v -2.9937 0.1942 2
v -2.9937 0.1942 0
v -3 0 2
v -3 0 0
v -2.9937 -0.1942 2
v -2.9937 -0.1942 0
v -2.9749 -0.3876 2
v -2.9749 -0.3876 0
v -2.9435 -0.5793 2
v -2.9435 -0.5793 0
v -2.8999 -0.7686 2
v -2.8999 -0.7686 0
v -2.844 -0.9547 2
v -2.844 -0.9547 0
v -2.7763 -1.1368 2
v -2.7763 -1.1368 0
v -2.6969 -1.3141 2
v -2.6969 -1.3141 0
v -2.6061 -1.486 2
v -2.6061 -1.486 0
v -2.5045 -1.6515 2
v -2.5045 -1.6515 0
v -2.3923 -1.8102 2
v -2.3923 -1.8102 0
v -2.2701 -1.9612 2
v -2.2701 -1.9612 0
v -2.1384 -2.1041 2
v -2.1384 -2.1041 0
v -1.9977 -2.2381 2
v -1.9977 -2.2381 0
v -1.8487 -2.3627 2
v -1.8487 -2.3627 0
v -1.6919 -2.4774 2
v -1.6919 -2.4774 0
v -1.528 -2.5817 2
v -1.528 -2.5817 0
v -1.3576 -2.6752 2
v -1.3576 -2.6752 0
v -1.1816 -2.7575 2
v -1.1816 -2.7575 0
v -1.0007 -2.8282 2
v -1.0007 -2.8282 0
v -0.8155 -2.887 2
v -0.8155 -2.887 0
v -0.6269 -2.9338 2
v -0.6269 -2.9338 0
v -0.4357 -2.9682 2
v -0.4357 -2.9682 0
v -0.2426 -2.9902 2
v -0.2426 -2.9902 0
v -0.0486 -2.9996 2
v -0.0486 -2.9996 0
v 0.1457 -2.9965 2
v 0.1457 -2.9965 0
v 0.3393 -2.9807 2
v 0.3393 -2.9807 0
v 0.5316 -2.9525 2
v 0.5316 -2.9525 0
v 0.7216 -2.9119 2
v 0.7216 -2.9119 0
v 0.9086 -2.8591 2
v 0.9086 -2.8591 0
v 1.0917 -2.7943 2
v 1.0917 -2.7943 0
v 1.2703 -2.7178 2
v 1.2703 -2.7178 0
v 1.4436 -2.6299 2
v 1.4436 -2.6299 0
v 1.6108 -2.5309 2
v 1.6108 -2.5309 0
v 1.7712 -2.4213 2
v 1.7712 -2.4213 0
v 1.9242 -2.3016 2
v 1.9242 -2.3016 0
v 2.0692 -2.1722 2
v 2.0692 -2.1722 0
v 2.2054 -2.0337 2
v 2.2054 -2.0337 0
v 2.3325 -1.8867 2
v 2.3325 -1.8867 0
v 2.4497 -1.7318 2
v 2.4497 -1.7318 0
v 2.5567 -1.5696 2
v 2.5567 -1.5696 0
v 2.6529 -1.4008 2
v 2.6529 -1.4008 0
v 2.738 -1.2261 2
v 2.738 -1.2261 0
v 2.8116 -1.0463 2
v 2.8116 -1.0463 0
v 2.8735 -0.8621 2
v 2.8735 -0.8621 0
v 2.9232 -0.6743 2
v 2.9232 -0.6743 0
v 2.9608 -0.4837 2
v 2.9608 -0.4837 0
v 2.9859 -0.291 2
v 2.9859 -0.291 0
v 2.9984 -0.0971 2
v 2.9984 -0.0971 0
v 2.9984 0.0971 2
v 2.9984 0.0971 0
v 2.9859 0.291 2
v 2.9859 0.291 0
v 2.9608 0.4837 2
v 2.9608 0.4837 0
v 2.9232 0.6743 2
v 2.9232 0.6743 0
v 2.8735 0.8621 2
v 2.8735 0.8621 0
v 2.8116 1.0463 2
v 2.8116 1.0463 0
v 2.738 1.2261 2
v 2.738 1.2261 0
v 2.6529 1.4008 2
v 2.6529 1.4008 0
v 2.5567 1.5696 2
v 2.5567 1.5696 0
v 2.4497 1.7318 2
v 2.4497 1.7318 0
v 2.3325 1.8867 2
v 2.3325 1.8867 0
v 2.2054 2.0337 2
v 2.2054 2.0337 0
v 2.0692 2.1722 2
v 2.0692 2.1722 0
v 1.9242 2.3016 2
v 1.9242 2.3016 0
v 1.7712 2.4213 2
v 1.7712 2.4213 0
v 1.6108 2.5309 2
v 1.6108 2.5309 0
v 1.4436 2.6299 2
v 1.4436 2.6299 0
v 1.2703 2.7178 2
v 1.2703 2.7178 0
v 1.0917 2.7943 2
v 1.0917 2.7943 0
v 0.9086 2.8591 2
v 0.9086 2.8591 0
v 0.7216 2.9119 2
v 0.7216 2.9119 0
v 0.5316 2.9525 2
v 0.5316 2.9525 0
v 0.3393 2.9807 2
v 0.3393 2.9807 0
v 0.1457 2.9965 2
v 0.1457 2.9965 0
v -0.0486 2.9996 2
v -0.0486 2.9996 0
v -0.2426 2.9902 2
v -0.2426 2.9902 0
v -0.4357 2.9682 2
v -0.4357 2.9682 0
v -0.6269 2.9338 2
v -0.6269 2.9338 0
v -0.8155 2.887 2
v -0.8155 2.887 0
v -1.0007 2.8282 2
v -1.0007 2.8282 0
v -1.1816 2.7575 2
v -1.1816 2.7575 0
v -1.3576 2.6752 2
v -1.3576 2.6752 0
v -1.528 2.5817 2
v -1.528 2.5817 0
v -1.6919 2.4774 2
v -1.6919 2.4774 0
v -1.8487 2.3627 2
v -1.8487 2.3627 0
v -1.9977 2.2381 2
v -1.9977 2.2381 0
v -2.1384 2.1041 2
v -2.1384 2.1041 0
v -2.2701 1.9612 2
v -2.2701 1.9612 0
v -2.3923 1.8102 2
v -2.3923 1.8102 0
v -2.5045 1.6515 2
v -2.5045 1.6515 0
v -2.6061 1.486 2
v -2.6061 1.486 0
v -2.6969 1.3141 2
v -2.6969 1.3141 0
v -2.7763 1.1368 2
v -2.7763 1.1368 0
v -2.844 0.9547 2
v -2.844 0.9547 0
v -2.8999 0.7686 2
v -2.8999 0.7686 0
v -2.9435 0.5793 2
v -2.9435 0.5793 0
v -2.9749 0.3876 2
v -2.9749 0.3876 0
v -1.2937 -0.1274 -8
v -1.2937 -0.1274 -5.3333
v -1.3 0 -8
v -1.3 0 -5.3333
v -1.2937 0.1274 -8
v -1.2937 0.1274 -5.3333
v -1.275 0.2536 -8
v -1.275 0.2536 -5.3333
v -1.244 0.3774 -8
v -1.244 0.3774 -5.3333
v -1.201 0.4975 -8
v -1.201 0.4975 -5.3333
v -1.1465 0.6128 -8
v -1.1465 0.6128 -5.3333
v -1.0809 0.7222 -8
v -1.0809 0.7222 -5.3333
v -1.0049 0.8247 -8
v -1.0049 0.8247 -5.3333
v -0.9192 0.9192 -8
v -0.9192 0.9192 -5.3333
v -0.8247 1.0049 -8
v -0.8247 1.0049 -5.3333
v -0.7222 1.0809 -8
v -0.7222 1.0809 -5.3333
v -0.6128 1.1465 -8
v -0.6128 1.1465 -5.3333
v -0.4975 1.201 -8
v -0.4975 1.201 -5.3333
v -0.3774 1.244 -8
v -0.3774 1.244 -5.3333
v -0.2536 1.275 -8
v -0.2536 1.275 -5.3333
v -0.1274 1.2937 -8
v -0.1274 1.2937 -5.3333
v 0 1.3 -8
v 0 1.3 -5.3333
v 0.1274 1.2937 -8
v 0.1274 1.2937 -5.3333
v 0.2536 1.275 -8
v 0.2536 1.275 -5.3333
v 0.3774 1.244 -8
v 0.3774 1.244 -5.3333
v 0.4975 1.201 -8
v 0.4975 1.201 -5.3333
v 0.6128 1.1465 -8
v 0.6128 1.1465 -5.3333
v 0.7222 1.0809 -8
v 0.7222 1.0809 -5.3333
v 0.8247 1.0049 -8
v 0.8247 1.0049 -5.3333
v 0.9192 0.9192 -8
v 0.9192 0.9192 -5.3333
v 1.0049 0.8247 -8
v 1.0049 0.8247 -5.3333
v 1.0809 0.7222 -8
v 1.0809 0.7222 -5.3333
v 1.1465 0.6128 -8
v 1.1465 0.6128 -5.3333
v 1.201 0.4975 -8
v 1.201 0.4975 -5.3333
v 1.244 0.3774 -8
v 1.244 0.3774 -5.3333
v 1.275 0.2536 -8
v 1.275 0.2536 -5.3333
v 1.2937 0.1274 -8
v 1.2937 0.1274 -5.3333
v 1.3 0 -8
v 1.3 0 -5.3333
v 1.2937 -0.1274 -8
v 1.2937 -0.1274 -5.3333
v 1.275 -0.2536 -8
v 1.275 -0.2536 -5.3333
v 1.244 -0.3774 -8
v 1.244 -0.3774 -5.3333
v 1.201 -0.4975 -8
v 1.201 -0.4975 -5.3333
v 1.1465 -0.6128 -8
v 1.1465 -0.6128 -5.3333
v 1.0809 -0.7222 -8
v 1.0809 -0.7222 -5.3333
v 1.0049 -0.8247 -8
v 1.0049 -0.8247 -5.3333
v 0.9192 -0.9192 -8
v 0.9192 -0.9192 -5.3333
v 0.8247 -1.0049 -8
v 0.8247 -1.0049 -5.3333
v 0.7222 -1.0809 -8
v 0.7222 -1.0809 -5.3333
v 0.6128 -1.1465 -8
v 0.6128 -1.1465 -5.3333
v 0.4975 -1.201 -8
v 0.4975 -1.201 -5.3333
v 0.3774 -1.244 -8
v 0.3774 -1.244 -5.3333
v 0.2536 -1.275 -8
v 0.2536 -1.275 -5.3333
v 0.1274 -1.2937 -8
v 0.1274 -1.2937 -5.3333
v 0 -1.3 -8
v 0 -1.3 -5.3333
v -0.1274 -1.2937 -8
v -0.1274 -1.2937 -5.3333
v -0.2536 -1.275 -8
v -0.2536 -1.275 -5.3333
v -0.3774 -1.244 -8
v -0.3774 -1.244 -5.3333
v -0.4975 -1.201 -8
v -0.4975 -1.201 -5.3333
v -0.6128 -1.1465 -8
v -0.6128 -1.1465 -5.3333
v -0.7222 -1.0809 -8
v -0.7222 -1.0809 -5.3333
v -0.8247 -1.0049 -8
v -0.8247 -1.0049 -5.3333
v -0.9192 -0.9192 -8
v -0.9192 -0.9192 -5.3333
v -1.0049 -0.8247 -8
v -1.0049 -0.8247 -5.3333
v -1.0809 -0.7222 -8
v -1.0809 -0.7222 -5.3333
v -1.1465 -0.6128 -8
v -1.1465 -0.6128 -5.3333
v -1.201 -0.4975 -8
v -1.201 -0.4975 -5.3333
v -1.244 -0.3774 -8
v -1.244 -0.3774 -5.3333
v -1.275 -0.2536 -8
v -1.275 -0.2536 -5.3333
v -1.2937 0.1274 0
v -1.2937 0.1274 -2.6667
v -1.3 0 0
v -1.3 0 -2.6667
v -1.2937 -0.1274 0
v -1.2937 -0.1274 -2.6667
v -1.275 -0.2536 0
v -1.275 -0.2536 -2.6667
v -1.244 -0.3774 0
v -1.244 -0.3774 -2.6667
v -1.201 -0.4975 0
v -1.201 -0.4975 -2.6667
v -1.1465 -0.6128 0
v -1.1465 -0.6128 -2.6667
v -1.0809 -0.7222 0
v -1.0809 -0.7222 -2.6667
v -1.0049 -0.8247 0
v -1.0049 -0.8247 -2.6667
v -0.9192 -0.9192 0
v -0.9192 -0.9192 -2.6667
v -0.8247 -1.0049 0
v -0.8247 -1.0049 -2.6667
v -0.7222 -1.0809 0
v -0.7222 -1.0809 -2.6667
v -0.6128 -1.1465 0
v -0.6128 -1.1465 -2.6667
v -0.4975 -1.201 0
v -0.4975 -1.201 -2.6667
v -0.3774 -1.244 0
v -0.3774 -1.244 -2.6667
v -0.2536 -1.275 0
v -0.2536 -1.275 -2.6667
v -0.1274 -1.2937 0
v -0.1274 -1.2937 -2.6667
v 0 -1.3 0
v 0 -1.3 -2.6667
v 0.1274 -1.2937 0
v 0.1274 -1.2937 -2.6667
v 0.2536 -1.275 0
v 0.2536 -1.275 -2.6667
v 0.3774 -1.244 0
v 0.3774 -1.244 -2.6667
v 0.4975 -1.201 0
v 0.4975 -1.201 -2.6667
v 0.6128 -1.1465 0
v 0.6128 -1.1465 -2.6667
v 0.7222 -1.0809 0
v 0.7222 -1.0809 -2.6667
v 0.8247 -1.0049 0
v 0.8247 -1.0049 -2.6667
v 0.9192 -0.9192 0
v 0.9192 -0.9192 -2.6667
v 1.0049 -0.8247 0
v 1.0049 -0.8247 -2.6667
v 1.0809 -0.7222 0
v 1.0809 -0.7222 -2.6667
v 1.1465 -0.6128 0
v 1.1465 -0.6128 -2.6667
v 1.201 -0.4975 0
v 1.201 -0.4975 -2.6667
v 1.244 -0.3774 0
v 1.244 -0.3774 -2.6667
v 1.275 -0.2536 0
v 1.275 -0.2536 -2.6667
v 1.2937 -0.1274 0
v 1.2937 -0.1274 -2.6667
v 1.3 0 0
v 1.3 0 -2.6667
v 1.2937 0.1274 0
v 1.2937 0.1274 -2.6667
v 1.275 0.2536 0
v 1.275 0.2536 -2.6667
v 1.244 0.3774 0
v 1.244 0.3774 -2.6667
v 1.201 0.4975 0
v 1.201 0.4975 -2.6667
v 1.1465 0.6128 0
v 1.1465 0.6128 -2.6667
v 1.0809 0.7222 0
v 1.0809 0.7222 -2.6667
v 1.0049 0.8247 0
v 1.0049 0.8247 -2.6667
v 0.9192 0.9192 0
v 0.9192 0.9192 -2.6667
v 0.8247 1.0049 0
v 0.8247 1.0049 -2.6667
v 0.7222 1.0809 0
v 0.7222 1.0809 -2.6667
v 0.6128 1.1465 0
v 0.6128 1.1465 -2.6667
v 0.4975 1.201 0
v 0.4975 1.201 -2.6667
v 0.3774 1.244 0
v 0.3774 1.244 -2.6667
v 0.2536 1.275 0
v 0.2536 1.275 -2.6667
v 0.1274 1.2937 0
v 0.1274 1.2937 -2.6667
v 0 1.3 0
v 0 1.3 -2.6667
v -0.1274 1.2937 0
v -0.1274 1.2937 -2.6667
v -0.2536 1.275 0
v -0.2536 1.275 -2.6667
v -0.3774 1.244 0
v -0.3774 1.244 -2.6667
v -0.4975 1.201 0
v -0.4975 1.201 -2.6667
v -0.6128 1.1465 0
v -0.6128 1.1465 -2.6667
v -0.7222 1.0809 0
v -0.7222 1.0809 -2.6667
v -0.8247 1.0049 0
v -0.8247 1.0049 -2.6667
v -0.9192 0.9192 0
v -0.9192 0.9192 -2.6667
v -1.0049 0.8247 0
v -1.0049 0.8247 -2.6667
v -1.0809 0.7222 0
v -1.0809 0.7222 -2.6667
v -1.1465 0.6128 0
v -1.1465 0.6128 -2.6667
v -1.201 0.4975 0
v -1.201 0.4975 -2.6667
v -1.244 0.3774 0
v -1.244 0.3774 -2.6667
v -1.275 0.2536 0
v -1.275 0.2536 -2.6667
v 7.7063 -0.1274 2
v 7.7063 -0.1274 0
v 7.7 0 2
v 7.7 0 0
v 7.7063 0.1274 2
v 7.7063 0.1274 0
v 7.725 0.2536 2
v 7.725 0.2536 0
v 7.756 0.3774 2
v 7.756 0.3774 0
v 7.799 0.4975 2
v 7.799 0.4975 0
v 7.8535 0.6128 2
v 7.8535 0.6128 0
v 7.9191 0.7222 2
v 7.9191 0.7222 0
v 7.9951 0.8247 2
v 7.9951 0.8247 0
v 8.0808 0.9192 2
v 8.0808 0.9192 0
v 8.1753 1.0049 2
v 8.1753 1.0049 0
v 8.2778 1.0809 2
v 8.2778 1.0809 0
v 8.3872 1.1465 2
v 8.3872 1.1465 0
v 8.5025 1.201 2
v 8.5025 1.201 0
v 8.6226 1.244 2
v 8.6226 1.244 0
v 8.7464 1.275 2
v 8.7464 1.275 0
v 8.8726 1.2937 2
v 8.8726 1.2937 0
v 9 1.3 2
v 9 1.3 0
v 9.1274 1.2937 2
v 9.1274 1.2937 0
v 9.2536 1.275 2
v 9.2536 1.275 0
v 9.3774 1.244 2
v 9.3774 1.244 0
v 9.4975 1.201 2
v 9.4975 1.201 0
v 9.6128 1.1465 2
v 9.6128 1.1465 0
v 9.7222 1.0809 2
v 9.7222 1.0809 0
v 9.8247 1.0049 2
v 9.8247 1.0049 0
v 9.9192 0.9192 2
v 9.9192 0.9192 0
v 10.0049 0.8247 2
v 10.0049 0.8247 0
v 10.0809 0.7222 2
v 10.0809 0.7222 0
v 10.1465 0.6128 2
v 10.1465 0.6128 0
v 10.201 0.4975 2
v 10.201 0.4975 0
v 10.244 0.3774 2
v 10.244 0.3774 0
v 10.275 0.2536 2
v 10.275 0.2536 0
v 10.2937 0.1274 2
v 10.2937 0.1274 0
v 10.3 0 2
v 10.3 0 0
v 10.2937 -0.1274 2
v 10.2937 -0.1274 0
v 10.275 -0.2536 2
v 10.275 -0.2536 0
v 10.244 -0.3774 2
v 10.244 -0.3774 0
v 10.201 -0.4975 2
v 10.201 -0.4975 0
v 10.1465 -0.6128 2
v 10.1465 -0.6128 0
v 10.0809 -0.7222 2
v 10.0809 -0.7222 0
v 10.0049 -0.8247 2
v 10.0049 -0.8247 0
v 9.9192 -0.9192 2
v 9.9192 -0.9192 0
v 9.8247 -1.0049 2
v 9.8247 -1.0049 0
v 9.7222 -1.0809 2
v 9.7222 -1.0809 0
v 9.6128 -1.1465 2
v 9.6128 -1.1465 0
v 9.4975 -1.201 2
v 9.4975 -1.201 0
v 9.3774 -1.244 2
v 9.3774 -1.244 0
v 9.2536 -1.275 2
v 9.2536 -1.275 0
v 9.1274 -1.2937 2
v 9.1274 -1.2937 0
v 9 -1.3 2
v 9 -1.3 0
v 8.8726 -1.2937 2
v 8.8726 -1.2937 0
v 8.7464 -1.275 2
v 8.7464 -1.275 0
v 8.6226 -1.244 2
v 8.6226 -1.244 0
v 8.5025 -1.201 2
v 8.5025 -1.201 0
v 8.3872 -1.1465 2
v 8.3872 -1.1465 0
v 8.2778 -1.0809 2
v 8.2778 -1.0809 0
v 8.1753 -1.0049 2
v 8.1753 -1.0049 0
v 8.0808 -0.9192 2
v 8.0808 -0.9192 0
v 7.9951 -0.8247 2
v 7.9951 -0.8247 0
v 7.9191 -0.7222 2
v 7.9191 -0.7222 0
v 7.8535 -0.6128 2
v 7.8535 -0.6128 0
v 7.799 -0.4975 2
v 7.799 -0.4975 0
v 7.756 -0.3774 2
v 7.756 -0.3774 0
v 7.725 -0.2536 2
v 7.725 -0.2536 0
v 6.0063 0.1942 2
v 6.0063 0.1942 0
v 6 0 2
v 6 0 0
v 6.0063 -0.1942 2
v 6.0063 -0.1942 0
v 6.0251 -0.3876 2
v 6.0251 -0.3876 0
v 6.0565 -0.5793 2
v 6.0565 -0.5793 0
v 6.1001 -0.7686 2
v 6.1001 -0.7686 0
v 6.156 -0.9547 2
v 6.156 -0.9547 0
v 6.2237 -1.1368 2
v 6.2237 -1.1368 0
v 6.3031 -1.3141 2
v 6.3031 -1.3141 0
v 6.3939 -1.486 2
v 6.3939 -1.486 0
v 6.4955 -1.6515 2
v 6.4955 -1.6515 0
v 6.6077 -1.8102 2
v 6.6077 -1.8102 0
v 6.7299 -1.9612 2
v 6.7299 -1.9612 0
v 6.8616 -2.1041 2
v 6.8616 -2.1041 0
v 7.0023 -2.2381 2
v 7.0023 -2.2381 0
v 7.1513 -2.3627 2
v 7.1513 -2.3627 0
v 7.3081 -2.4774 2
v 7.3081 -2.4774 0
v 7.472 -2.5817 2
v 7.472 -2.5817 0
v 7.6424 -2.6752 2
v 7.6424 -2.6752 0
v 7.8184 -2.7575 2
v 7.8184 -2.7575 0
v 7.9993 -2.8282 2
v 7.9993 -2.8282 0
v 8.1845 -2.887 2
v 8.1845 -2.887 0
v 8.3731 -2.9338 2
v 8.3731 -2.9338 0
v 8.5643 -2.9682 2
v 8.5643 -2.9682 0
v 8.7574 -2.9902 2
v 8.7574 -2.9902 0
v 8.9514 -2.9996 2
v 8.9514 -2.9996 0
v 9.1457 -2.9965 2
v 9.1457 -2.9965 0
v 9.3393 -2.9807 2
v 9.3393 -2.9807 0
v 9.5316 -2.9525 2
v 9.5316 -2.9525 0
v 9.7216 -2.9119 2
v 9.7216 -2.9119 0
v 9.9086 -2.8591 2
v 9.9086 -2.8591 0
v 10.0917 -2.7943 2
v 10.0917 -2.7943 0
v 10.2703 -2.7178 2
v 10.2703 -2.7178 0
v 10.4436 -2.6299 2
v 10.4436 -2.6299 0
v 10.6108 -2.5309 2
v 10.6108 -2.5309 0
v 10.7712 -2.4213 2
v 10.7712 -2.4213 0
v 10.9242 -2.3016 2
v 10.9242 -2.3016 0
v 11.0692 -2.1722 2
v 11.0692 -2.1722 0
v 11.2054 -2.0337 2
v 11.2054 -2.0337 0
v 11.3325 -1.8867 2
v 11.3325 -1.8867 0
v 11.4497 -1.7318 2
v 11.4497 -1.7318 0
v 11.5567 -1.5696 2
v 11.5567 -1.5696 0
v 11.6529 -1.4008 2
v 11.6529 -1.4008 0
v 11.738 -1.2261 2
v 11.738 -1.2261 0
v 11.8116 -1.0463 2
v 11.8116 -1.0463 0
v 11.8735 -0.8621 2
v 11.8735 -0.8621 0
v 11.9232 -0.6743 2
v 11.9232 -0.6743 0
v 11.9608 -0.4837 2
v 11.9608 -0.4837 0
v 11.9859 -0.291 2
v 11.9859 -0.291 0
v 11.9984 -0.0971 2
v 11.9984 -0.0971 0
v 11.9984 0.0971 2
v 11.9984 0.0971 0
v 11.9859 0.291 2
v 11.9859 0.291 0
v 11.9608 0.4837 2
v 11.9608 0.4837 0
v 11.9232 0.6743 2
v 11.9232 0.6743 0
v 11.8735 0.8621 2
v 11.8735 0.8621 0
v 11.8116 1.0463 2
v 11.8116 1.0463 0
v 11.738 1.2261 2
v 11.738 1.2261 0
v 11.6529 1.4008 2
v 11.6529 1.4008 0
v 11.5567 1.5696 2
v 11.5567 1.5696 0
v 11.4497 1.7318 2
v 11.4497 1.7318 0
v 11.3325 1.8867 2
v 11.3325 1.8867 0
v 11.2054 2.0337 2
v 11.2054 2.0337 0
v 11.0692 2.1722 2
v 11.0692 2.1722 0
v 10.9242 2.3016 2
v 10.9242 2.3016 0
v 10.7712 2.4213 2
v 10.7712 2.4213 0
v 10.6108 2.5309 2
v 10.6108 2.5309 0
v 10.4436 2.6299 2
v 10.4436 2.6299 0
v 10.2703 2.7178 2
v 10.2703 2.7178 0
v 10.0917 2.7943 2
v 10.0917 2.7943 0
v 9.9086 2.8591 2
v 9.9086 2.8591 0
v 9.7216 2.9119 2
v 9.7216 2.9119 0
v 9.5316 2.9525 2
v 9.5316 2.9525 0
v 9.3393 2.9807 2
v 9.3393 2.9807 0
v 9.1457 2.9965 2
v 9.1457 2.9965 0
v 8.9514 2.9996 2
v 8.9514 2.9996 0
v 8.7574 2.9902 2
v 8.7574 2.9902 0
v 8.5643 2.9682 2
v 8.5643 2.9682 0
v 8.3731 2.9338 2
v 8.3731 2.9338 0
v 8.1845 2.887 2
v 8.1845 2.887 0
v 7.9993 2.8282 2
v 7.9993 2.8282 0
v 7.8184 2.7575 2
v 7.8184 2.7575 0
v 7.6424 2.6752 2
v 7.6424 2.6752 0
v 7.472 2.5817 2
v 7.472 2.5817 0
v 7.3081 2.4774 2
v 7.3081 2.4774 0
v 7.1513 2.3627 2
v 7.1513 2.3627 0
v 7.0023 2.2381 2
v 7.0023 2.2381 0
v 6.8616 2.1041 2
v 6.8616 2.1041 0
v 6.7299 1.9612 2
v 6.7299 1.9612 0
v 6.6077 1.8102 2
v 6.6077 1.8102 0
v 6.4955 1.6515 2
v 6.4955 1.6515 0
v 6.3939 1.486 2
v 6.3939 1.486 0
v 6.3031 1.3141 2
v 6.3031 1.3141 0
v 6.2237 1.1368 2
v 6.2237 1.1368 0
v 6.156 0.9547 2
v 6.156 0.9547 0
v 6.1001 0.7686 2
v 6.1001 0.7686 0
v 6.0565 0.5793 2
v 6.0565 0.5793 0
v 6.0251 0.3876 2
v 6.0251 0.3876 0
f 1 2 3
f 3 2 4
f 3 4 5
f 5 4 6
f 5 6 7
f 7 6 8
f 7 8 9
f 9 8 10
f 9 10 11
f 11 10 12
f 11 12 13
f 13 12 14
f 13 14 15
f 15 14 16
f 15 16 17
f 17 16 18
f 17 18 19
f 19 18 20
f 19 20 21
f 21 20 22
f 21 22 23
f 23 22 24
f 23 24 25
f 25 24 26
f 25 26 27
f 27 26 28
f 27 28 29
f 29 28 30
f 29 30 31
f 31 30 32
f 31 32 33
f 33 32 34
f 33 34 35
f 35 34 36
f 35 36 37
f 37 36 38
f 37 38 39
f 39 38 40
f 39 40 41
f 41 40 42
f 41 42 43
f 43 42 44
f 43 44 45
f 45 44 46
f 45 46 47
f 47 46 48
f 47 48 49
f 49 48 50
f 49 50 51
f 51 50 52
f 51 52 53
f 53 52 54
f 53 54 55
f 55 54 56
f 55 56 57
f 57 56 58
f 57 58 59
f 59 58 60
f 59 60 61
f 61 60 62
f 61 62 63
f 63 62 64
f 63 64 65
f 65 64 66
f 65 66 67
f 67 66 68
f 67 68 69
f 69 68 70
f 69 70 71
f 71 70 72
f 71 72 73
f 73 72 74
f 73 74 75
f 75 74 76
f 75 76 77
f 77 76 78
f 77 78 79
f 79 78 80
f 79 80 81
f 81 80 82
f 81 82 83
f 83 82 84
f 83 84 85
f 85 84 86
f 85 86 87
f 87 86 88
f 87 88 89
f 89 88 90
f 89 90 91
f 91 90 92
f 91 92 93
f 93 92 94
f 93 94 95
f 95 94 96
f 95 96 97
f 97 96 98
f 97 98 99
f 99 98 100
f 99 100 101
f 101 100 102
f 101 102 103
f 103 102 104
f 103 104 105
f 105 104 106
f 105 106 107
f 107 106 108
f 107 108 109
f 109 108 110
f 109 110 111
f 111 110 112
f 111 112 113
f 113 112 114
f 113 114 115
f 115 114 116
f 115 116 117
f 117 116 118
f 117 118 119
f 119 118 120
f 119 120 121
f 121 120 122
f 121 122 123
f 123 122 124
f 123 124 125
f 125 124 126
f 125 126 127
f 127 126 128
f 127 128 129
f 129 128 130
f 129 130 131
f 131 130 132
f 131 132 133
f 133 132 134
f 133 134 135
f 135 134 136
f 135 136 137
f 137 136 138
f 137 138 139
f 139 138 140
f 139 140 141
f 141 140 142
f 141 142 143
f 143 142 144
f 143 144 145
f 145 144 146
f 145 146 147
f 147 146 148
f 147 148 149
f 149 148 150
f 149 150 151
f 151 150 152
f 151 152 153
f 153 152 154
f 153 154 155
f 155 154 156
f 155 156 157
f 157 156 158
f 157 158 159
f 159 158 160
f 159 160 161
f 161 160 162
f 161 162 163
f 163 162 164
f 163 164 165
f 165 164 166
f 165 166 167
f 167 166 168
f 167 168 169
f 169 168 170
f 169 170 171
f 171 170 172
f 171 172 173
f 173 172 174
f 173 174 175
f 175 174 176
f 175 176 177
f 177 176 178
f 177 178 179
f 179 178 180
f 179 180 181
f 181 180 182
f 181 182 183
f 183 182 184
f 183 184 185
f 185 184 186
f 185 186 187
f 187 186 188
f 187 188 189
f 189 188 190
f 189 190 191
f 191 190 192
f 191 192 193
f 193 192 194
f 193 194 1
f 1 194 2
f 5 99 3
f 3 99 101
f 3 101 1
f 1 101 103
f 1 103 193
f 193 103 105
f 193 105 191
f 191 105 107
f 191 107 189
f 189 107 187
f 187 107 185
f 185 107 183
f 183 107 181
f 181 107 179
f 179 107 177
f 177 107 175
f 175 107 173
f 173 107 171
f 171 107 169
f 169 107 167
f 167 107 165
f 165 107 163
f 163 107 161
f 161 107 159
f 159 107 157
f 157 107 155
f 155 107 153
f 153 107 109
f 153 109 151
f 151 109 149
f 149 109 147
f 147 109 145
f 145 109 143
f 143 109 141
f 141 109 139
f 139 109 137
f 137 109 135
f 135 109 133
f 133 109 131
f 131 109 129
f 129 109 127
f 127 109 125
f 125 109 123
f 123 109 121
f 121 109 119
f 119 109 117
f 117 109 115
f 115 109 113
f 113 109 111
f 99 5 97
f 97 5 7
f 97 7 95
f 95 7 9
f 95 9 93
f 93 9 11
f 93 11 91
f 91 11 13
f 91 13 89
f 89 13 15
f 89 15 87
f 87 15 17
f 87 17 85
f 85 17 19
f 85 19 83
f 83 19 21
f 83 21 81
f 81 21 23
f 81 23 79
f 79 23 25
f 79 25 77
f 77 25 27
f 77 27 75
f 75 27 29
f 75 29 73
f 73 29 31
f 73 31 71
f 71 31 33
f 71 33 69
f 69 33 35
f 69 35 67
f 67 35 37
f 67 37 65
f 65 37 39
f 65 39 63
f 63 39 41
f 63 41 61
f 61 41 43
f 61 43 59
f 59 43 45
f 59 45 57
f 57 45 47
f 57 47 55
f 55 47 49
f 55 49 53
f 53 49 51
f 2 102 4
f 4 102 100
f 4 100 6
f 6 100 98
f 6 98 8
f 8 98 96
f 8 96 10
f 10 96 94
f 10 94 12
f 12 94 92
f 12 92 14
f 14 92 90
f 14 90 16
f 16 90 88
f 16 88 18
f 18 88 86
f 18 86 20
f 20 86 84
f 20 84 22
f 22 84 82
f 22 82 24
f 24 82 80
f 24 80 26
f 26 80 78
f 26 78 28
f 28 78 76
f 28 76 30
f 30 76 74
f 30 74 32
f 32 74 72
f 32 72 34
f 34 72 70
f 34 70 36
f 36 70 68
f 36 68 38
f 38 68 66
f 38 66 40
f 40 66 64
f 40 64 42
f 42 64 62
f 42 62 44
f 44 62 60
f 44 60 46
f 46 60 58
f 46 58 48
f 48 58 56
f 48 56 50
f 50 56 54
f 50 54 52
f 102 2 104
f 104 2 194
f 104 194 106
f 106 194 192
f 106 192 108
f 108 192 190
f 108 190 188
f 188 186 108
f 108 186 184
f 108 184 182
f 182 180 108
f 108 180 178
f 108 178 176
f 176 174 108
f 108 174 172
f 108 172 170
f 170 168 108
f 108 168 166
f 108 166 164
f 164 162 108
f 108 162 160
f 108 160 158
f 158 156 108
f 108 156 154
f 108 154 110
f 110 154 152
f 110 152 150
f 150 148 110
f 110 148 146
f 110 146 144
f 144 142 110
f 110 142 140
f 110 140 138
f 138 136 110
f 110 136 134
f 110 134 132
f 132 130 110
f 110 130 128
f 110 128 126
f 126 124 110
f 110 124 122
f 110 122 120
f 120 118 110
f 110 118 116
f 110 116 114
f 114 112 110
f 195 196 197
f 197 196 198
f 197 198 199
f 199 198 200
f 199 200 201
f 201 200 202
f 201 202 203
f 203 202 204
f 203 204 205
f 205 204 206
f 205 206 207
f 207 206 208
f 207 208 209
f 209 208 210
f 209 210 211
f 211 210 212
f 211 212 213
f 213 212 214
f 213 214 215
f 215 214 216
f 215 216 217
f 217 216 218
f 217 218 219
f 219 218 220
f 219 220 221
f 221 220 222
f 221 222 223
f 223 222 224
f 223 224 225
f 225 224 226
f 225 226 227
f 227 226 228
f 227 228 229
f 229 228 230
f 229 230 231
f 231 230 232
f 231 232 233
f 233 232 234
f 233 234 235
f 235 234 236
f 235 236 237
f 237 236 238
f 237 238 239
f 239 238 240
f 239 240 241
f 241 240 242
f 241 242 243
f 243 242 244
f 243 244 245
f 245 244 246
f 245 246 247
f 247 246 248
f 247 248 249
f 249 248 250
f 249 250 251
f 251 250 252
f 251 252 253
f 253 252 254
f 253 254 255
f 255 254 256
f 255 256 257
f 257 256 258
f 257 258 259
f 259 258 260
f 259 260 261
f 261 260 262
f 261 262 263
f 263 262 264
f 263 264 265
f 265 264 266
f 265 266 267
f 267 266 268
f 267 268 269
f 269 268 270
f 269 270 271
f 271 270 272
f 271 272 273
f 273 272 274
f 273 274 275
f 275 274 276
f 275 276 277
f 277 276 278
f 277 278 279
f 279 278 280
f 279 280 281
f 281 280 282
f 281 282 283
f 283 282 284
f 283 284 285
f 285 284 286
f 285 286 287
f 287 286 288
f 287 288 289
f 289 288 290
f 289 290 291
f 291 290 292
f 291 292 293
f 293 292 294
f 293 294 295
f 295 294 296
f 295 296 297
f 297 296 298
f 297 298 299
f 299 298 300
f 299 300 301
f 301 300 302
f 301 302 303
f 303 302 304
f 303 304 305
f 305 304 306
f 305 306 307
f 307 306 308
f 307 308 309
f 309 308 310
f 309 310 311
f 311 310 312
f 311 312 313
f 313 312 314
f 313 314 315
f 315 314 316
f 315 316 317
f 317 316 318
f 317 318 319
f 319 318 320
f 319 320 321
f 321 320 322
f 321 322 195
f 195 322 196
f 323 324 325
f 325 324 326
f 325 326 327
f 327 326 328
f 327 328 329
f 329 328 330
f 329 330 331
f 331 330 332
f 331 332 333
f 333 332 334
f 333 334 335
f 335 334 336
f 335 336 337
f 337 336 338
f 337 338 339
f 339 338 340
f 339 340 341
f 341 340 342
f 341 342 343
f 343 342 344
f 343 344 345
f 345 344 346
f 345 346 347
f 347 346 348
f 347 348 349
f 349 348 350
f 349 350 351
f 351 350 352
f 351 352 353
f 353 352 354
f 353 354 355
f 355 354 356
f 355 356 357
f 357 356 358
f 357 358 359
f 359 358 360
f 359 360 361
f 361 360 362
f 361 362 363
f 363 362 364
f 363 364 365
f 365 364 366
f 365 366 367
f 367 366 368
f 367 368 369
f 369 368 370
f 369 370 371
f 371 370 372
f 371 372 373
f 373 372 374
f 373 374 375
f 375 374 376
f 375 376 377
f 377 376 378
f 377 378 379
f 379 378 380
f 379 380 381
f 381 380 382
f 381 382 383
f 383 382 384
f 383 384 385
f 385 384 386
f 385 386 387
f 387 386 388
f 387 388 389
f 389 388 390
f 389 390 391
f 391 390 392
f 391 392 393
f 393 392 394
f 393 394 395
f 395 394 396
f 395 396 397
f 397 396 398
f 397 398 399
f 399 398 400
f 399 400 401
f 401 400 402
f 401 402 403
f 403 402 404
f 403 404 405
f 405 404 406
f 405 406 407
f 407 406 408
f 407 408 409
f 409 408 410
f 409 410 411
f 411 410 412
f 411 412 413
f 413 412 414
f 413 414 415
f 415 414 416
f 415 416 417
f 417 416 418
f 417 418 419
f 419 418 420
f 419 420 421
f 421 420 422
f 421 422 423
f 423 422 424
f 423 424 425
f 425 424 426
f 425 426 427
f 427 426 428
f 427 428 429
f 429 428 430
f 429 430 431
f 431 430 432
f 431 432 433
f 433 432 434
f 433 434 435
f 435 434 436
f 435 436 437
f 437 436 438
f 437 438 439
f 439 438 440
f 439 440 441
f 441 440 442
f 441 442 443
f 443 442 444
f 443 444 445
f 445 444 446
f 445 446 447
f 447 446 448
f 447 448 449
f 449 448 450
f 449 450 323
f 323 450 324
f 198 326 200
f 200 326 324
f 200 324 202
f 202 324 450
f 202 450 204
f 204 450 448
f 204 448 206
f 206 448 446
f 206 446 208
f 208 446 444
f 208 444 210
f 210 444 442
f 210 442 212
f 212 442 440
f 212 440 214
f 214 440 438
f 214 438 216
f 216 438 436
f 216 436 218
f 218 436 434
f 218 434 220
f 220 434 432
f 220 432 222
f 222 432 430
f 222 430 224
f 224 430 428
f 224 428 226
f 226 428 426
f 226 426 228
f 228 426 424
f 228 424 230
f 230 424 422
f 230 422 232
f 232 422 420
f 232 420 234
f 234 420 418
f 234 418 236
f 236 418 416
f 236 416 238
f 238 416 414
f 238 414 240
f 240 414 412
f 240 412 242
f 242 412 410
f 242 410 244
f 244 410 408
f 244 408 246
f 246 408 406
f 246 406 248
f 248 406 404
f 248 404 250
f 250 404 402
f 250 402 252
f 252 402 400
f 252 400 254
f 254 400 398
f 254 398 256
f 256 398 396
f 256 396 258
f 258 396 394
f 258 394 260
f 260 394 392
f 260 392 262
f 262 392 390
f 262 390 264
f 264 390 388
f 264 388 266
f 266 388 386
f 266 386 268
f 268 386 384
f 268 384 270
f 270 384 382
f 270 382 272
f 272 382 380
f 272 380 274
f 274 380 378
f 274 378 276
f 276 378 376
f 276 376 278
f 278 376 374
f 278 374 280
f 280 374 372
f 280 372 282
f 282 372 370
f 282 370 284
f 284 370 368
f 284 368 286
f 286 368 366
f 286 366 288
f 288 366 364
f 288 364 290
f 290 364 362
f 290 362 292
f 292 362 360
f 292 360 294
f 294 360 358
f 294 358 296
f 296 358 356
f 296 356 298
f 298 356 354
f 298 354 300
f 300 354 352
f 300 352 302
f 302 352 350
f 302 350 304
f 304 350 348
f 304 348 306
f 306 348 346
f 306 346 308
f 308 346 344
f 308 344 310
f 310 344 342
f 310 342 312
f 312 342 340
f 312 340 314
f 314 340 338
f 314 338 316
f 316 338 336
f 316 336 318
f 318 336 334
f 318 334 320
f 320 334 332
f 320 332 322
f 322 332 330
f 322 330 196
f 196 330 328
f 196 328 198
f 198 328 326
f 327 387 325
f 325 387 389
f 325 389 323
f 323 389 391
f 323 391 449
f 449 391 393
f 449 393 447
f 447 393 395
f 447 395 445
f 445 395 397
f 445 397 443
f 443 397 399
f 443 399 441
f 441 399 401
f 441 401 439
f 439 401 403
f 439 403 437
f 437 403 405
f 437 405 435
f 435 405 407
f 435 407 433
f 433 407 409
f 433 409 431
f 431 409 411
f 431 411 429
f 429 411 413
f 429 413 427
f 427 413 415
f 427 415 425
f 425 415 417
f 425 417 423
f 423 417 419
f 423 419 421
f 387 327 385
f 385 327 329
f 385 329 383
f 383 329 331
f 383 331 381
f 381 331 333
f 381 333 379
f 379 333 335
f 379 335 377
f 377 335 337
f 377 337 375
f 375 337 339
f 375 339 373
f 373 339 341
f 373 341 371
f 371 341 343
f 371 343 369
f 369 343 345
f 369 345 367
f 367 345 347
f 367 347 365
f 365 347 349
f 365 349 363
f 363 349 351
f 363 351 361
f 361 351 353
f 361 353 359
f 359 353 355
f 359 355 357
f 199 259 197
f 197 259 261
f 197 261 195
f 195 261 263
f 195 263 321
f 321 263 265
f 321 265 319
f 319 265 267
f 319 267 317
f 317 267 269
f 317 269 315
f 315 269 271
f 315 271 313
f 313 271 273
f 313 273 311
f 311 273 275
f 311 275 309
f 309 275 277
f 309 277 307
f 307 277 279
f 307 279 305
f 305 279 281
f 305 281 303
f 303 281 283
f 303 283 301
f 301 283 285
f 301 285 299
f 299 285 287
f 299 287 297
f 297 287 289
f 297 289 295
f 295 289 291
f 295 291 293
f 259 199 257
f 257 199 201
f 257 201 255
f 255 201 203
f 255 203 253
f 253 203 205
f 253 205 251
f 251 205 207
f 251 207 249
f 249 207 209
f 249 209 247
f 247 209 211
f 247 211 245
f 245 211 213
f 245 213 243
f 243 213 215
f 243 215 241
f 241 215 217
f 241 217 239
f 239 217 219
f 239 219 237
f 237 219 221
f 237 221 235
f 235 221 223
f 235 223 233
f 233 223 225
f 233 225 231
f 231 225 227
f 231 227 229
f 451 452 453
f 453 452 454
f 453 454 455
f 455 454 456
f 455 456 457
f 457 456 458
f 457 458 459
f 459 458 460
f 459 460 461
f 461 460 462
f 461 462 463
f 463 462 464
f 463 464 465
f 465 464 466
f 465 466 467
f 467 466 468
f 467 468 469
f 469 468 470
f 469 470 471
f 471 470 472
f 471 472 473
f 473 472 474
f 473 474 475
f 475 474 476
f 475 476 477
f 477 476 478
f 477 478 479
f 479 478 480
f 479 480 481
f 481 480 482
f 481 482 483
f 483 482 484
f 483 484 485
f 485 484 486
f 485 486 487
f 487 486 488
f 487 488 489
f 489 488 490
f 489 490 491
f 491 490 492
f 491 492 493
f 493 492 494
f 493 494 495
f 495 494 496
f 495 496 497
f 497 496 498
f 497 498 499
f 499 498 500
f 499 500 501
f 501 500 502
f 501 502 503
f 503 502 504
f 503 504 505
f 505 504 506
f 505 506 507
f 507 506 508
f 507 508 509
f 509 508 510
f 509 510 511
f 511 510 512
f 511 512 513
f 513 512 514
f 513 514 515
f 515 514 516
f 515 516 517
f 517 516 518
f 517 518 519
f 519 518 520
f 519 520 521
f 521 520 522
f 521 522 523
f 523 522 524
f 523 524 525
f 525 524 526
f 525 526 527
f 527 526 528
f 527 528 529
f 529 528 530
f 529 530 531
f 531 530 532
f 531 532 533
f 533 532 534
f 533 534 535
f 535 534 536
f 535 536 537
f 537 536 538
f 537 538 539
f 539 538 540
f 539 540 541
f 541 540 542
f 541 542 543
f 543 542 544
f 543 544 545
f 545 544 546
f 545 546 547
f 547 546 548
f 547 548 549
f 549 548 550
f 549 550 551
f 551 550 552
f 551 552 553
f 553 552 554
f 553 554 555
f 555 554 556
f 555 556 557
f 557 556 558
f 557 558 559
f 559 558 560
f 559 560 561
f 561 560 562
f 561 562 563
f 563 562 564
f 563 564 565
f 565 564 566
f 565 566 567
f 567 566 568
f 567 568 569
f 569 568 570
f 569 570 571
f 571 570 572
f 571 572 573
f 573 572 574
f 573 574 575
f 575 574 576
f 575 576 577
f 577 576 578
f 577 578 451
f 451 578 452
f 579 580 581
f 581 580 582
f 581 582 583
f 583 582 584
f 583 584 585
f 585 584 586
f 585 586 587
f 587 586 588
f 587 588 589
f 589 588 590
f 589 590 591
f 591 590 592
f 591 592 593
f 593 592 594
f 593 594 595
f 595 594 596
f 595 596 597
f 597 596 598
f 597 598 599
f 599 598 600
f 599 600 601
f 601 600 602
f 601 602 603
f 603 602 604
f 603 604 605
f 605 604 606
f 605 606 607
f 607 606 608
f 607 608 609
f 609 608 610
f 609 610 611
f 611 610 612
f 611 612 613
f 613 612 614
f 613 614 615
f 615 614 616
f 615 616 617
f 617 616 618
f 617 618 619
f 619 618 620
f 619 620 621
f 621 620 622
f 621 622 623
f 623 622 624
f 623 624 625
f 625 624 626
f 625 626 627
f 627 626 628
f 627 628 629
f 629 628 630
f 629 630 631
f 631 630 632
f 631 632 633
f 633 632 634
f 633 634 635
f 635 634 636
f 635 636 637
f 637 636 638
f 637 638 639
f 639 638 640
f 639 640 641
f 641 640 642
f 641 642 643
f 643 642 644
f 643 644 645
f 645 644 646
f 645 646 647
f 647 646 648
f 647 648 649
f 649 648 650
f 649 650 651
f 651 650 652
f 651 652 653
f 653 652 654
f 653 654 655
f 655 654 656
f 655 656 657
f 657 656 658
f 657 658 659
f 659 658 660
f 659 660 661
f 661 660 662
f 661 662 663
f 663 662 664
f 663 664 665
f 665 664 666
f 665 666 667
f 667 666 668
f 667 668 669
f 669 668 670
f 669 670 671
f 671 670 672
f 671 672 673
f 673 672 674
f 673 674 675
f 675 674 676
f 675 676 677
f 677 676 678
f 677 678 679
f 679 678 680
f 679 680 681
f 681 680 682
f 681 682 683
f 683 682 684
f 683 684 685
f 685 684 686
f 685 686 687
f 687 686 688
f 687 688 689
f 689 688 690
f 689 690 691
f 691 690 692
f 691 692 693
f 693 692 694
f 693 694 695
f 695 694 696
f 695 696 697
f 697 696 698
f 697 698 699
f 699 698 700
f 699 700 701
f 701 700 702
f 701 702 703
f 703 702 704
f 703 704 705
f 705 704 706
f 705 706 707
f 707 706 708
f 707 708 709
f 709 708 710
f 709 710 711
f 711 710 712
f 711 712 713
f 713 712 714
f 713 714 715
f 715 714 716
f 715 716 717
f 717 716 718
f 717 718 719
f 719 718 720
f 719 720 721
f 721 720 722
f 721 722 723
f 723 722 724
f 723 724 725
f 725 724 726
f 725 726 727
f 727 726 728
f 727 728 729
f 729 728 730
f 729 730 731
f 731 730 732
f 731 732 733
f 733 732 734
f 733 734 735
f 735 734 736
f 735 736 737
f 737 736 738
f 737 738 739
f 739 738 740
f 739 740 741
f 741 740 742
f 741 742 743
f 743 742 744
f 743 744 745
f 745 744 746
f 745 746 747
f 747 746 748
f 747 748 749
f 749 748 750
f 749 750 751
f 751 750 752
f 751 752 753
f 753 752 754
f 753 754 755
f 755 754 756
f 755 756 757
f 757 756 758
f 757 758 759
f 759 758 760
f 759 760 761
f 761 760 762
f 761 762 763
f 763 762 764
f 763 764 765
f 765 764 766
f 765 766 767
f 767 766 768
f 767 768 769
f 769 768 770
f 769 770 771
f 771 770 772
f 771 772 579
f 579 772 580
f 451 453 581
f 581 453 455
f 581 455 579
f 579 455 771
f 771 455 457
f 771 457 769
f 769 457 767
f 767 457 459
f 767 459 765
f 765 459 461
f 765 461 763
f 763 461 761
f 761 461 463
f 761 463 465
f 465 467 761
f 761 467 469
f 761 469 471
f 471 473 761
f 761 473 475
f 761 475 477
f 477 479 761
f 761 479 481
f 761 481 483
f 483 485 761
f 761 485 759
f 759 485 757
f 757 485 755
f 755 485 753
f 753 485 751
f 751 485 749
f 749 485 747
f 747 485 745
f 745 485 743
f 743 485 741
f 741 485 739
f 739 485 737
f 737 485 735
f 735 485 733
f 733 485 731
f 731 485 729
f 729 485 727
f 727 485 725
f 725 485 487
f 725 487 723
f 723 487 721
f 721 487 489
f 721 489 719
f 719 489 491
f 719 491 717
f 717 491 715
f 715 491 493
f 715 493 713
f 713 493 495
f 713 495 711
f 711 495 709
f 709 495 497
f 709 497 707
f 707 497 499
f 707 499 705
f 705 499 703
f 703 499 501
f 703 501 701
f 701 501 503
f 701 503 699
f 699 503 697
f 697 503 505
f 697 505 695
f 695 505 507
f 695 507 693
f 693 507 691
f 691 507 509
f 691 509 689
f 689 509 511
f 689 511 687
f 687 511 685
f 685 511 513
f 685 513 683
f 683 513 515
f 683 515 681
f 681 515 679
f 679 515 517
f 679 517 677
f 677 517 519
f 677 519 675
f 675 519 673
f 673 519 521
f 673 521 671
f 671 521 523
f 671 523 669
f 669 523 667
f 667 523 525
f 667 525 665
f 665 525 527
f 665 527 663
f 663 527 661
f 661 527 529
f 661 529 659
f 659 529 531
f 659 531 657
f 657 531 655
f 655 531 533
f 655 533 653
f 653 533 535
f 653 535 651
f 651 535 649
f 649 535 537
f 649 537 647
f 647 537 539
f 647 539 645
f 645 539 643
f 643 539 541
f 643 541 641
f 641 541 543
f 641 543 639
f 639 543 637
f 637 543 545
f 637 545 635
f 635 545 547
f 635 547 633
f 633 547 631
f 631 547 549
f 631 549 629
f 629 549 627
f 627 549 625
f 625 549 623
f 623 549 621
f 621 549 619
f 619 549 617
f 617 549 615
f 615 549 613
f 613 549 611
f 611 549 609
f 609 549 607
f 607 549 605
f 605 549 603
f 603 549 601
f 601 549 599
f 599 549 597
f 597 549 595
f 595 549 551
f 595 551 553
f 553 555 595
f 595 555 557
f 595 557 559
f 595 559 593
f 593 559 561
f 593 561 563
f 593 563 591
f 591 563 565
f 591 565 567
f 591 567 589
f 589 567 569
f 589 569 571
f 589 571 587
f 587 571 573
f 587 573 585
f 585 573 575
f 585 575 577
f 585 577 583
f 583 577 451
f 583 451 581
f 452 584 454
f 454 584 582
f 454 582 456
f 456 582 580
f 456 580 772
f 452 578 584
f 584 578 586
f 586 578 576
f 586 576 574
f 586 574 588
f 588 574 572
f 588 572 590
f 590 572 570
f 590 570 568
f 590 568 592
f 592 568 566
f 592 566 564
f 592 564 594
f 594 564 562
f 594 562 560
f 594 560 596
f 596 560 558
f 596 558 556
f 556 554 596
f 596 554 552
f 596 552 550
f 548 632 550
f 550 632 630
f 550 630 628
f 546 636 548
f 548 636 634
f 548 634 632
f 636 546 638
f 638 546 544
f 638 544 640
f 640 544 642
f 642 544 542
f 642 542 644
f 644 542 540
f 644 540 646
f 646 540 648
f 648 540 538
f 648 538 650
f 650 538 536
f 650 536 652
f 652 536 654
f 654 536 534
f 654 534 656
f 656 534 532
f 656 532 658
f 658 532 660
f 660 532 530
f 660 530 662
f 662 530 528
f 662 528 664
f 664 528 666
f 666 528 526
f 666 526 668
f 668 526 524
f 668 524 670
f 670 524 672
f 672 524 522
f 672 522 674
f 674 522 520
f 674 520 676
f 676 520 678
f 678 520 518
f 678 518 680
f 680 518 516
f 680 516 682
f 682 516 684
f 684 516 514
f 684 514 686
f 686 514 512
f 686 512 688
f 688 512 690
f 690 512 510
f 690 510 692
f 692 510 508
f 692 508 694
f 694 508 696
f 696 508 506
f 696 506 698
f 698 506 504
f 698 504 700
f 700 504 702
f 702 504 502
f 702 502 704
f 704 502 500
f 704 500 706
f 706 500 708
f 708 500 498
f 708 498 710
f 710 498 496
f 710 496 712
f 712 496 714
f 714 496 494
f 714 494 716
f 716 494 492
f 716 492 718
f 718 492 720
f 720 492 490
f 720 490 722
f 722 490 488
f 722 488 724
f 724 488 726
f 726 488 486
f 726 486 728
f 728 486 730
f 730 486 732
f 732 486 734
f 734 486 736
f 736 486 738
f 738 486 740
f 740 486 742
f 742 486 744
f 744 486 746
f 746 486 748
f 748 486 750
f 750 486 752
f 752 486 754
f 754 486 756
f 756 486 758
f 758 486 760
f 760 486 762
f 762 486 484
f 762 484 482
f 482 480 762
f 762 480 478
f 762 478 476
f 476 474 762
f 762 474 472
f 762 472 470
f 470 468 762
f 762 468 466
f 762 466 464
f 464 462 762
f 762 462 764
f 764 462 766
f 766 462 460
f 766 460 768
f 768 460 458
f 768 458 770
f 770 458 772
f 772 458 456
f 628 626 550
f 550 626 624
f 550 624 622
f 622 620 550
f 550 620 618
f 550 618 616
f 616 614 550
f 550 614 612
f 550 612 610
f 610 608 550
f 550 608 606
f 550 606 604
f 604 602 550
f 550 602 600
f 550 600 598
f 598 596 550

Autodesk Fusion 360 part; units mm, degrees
sketch "Sketch1" plane through (0, 0, 0) normal (0, 0, 1) x (1, 0, 0)
  circle A0 centre (0, 0) radius 1.3
  circle A1 centre (0, 0) radius 3
  circle A2 centre (9, 0) radius 1.3
  circle A3 centre (9, 0) radius 3
  dimension "d1" = 2.6
  dimension "d2" = 6
  dimension "d7" = 2.6
  dimension "d8" = 6
extrude "Extrude1" add sketch "Sketch1" along normal blind 2 contours A0 | A1 makes body 1
extrude "Extrude2" add sketch "Sketch1" against normal blind 8 separate body contours A0 makes body 2
extrude "Extrude3" add sketch "Sketch1" along normal blind 2 separate body contours A3 makes body 3
